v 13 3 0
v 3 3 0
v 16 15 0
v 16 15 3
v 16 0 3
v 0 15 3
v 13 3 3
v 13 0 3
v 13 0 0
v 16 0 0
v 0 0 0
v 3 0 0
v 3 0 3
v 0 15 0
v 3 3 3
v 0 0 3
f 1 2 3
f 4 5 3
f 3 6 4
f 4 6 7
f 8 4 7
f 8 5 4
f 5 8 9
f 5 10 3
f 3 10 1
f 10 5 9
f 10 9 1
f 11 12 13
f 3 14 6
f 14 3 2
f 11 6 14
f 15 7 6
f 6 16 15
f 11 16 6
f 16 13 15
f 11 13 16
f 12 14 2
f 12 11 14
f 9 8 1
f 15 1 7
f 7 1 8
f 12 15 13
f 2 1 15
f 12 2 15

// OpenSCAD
difference(){
    cube([10+6,3+12,3]);
    translate([6/2,0,0]){
        cube([10,3,3]);
    }
}
